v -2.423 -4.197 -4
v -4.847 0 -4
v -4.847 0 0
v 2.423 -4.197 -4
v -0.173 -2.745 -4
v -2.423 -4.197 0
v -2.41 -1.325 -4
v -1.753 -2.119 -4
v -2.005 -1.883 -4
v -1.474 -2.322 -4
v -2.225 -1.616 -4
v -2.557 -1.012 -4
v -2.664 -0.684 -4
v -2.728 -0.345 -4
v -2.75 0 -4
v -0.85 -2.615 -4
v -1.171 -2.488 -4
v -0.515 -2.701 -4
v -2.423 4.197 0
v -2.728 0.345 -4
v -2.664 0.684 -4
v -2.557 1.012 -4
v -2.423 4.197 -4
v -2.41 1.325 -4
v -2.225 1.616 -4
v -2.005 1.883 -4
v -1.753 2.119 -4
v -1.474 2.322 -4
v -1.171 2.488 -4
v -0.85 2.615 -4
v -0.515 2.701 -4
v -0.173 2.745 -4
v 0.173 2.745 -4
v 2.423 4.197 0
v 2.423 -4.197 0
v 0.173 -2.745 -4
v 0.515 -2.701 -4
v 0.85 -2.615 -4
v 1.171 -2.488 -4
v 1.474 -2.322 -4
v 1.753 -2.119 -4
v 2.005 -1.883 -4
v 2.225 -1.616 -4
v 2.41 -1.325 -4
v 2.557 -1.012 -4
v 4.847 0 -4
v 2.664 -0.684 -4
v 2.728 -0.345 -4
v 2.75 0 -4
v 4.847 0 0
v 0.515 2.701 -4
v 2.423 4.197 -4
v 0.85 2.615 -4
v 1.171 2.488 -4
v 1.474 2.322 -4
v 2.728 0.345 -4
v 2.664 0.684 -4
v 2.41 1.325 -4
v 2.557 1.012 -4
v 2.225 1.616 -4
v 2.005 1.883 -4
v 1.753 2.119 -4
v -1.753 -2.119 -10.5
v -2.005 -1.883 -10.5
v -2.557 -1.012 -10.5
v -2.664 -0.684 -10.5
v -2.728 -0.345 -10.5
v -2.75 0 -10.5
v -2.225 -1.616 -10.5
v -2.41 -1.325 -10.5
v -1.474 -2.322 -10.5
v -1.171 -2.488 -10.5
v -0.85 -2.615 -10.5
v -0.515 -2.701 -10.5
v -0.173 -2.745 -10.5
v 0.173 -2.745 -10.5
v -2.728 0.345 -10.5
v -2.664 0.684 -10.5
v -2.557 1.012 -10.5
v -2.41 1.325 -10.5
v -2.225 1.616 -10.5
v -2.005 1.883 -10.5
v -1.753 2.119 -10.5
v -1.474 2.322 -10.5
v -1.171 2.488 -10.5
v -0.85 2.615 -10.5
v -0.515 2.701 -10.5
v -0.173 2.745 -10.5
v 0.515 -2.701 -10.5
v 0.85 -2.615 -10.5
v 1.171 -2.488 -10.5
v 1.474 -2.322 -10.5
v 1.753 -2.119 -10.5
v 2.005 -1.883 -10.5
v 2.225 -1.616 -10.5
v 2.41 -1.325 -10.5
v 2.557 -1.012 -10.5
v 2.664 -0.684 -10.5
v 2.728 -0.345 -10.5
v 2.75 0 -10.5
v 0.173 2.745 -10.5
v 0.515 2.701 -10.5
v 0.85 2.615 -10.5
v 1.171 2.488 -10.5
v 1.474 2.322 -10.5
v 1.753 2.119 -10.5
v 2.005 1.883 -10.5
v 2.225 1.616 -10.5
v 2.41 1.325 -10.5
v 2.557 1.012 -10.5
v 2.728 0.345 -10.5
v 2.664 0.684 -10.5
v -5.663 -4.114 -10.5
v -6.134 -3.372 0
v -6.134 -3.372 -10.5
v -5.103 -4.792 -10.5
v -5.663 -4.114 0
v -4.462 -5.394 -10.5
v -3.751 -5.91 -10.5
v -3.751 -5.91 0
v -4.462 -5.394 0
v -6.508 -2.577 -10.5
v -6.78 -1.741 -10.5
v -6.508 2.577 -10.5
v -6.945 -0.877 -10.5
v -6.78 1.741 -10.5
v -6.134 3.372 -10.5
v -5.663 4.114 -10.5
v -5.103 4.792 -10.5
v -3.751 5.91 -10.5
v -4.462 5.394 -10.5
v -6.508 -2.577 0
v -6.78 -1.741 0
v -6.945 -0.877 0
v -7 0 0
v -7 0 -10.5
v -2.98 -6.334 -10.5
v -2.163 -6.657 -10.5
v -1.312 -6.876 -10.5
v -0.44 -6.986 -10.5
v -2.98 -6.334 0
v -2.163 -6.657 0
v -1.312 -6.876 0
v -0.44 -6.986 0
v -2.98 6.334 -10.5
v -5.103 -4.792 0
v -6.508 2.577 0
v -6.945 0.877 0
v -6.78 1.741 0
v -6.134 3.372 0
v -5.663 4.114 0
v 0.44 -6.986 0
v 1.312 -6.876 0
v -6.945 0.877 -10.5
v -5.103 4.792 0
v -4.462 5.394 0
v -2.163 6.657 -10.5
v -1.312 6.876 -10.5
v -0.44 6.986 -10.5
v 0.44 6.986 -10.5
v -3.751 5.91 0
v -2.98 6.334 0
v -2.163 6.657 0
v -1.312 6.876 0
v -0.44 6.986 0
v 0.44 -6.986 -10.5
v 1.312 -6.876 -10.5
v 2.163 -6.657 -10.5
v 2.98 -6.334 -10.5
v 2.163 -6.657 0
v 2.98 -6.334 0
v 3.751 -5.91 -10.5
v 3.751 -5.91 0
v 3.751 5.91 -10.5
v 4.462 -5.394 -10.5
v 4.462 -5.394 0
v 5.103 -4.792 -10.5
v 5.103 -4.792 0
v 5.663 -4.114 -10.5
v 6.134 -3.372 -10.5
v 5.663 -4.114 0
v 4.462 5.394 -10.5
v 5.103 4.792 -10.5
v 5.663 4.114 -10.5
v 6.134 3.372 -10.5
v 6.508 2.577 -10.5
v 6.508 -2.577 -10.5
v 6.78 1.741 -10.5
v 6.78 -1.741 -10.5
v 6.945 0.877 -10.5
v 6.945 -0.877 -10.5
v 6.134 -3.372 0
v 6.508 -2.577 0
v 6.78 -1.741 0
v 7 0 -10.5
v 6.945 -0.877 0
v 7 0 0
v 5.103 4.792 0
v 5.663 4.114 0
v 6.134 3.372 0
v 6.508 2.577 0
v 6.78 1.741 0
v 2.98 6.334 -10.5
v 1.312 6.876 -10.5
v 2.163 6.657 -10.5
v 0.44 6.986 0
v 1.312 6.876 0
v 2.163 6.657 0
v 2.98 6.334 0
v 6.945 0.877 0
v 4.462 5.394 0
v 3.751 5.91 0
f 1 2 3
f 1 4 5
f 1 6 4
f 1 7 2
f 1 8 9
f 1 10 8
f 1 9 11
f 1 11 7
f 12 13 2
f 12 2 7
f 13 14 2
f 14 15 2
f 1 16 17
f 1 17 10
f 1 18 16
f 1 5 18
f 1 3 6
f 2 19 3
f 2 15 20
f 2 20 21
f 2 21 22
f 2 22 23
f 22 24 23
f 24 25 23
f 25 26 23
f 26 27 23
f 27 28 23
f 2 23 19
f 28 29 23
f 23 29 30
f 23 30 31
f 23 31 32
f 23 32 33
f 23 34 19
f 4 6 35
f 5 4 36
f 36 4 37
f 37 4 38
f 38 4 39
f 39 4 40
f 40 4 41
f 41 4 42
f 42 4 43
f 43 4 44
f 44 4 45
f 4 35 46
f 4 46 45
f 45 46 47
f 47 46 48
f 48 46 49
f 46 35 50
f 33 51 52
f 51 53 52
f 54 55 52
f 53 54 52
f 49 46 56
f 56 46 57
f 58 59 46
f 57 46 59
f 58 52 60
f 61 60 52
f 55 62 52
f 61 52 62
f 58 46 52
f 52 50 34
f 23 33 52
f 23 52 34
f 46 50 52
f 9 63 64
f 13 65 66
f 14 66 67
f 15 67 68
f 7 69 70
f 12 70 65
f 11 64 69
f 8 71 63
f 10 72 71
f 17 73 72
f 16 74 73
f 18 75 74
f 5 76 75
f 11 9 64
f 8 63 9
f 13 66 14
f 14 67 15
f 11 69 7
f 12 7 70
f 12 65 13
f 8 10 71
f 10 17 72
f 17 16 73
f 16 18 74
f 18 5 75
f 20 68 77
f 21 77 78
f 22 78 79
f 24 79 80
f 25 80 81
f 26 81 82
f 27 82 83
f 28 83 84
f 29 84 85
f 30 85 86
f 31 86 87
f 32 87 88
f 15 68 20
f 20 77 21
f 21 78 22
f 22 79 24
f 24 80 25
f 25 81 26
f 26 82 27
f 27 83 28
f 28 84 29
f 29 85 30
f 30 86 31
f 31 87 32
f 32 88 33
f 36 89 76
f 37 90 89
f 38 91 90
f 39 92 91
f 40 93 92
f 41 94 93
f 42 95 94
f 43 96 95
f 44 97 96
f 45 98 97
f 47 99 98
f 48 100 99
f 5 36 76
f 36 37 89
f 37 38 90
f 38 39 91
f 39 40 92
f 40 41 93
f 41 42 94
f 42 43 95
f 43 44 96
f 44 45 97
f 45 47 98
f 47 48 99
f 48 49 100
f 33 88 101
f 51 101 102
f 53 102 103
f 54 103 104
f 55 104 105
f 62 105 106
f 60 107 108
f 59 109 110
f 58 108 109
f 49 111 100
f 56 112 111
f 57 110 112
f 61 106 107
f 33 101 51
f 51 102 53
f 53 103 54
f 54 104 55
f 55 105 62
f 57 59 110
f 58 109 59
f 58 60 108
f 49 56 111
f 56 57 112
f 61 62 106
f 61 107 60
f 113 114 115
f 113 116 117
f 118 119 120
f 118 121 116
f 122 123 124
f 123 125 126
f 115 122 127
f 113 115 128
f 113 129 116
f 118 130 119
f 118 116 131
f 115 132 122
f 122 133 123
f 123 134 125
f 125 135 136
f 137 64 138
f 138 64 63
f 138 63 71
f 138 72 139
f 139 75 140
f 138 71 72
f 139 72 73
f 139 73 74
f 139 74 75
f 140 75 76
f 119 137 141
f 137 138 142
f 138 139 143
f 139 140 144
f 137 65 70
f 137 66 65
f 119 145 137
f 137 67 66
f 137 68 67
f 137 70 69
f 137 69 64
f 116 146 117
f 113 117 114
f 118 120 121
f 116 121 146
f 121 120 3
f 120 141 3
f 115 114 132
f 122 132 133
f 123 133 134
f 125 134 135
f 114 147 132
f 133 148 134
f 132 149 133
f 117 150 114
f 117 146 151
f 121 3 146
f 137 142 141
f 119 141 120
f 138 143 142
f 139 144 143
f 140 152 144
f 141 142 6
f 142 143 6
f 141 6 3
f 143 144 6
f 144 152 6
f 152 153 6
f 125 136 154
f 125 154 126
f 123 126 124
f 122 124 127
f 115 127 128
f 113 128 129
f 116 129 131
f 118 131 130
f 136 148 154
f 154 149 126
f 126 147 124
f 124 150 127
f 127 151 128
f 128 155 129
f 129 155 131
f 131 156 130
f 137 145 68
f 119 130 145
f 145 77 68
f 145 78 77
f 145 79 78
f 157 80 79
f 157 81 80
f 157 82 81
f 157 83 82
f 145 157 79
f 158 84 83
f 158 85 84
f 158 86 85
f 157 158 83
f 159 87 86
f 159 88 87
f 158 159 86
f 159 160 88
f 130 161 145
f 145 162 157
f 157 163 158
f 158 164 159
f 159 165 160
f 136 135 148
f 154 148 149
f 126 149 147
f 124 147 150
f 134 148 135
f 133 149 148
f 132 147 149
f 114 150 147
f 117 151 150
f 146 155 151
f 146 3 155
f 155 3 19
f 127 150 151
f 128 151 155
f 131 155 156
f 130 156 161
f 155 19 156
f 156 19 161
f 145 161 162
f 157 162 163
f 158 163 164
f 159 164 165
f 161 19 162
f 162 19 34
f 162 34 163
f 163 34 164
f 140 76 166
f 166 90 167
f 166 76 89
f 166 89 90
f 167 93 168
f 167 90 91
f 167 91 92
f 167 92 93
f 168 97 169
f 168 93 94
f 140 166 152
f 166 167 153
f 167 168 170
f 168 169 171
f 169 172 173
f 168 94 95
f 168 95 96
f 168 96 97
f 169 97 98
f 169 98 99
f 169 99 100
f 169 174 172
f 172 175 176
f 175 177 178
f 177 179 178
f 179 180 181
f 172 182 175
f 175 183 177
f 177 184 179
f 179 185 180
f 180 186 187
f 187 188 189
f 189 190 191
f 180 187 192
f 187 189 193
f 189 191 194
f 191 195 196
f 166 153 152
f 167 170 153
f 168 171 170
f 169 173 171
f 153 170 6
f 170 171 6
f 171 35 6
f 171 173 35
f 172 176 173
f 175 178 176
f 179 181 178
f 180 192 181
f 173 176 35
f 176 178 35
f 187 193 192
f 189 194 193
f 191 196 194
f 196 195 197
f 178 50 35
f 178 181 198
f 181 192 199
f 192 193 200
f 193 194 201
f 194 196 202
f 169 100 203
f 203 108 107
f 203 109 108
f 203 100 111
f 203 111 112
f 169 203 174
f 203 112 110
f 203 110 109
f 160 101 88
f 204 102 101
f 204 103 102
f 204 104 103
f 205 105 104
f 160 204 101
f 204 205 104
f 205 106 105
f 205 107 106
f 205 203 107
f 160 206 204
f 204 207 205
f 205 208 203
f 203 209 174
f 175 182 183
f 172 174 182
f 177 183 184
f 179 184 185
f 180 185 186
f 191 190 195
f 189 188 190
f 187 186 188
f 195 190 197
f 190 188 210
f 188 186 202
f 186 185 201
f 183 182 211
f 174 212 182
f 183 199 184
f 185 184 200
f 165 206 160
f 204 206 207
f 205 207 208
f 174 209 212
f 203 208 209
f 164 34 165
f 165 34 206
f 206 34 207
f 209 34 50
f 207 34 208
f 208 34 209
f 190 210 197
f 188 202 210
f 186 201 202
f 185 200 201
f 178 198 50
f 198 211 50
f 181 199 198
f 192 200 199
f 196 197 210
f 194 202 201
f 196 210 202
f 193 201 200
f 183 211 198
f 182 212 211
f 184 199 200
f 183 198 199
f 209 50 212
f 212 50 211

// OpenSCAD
$fn = 50;

difference() {
	union() {
		translate(v = [0, 0, -10.5]) {
			cylinder(h = 10.5, r = 7.0);
		}
	}
	union() {
		translate(v = [0, 0, 0]) {
			rotate(a = [0, 0, 0]) {
				difference() {
					union() {
						translate(v = [0, 0, -4]) {
							linear_extrude(height = 4) {
								polygon(points = [[4.8468, 0.0], [2.4234000000000004, 4.197451927062417], [-2.423399999999999, 4.197451927062417], [-4.8468, 5.935618106107392e-16], [-2.423400000000002, -4.197451927062416], [2.423399999999997, -4.197451927062419]]);
							}
						}
					}
					union();
				}
			}
		}
		#translate(v = [0, 0, -100.0]) {
			cylinder(h = 200, r = 2.75);
		}
	}
}
